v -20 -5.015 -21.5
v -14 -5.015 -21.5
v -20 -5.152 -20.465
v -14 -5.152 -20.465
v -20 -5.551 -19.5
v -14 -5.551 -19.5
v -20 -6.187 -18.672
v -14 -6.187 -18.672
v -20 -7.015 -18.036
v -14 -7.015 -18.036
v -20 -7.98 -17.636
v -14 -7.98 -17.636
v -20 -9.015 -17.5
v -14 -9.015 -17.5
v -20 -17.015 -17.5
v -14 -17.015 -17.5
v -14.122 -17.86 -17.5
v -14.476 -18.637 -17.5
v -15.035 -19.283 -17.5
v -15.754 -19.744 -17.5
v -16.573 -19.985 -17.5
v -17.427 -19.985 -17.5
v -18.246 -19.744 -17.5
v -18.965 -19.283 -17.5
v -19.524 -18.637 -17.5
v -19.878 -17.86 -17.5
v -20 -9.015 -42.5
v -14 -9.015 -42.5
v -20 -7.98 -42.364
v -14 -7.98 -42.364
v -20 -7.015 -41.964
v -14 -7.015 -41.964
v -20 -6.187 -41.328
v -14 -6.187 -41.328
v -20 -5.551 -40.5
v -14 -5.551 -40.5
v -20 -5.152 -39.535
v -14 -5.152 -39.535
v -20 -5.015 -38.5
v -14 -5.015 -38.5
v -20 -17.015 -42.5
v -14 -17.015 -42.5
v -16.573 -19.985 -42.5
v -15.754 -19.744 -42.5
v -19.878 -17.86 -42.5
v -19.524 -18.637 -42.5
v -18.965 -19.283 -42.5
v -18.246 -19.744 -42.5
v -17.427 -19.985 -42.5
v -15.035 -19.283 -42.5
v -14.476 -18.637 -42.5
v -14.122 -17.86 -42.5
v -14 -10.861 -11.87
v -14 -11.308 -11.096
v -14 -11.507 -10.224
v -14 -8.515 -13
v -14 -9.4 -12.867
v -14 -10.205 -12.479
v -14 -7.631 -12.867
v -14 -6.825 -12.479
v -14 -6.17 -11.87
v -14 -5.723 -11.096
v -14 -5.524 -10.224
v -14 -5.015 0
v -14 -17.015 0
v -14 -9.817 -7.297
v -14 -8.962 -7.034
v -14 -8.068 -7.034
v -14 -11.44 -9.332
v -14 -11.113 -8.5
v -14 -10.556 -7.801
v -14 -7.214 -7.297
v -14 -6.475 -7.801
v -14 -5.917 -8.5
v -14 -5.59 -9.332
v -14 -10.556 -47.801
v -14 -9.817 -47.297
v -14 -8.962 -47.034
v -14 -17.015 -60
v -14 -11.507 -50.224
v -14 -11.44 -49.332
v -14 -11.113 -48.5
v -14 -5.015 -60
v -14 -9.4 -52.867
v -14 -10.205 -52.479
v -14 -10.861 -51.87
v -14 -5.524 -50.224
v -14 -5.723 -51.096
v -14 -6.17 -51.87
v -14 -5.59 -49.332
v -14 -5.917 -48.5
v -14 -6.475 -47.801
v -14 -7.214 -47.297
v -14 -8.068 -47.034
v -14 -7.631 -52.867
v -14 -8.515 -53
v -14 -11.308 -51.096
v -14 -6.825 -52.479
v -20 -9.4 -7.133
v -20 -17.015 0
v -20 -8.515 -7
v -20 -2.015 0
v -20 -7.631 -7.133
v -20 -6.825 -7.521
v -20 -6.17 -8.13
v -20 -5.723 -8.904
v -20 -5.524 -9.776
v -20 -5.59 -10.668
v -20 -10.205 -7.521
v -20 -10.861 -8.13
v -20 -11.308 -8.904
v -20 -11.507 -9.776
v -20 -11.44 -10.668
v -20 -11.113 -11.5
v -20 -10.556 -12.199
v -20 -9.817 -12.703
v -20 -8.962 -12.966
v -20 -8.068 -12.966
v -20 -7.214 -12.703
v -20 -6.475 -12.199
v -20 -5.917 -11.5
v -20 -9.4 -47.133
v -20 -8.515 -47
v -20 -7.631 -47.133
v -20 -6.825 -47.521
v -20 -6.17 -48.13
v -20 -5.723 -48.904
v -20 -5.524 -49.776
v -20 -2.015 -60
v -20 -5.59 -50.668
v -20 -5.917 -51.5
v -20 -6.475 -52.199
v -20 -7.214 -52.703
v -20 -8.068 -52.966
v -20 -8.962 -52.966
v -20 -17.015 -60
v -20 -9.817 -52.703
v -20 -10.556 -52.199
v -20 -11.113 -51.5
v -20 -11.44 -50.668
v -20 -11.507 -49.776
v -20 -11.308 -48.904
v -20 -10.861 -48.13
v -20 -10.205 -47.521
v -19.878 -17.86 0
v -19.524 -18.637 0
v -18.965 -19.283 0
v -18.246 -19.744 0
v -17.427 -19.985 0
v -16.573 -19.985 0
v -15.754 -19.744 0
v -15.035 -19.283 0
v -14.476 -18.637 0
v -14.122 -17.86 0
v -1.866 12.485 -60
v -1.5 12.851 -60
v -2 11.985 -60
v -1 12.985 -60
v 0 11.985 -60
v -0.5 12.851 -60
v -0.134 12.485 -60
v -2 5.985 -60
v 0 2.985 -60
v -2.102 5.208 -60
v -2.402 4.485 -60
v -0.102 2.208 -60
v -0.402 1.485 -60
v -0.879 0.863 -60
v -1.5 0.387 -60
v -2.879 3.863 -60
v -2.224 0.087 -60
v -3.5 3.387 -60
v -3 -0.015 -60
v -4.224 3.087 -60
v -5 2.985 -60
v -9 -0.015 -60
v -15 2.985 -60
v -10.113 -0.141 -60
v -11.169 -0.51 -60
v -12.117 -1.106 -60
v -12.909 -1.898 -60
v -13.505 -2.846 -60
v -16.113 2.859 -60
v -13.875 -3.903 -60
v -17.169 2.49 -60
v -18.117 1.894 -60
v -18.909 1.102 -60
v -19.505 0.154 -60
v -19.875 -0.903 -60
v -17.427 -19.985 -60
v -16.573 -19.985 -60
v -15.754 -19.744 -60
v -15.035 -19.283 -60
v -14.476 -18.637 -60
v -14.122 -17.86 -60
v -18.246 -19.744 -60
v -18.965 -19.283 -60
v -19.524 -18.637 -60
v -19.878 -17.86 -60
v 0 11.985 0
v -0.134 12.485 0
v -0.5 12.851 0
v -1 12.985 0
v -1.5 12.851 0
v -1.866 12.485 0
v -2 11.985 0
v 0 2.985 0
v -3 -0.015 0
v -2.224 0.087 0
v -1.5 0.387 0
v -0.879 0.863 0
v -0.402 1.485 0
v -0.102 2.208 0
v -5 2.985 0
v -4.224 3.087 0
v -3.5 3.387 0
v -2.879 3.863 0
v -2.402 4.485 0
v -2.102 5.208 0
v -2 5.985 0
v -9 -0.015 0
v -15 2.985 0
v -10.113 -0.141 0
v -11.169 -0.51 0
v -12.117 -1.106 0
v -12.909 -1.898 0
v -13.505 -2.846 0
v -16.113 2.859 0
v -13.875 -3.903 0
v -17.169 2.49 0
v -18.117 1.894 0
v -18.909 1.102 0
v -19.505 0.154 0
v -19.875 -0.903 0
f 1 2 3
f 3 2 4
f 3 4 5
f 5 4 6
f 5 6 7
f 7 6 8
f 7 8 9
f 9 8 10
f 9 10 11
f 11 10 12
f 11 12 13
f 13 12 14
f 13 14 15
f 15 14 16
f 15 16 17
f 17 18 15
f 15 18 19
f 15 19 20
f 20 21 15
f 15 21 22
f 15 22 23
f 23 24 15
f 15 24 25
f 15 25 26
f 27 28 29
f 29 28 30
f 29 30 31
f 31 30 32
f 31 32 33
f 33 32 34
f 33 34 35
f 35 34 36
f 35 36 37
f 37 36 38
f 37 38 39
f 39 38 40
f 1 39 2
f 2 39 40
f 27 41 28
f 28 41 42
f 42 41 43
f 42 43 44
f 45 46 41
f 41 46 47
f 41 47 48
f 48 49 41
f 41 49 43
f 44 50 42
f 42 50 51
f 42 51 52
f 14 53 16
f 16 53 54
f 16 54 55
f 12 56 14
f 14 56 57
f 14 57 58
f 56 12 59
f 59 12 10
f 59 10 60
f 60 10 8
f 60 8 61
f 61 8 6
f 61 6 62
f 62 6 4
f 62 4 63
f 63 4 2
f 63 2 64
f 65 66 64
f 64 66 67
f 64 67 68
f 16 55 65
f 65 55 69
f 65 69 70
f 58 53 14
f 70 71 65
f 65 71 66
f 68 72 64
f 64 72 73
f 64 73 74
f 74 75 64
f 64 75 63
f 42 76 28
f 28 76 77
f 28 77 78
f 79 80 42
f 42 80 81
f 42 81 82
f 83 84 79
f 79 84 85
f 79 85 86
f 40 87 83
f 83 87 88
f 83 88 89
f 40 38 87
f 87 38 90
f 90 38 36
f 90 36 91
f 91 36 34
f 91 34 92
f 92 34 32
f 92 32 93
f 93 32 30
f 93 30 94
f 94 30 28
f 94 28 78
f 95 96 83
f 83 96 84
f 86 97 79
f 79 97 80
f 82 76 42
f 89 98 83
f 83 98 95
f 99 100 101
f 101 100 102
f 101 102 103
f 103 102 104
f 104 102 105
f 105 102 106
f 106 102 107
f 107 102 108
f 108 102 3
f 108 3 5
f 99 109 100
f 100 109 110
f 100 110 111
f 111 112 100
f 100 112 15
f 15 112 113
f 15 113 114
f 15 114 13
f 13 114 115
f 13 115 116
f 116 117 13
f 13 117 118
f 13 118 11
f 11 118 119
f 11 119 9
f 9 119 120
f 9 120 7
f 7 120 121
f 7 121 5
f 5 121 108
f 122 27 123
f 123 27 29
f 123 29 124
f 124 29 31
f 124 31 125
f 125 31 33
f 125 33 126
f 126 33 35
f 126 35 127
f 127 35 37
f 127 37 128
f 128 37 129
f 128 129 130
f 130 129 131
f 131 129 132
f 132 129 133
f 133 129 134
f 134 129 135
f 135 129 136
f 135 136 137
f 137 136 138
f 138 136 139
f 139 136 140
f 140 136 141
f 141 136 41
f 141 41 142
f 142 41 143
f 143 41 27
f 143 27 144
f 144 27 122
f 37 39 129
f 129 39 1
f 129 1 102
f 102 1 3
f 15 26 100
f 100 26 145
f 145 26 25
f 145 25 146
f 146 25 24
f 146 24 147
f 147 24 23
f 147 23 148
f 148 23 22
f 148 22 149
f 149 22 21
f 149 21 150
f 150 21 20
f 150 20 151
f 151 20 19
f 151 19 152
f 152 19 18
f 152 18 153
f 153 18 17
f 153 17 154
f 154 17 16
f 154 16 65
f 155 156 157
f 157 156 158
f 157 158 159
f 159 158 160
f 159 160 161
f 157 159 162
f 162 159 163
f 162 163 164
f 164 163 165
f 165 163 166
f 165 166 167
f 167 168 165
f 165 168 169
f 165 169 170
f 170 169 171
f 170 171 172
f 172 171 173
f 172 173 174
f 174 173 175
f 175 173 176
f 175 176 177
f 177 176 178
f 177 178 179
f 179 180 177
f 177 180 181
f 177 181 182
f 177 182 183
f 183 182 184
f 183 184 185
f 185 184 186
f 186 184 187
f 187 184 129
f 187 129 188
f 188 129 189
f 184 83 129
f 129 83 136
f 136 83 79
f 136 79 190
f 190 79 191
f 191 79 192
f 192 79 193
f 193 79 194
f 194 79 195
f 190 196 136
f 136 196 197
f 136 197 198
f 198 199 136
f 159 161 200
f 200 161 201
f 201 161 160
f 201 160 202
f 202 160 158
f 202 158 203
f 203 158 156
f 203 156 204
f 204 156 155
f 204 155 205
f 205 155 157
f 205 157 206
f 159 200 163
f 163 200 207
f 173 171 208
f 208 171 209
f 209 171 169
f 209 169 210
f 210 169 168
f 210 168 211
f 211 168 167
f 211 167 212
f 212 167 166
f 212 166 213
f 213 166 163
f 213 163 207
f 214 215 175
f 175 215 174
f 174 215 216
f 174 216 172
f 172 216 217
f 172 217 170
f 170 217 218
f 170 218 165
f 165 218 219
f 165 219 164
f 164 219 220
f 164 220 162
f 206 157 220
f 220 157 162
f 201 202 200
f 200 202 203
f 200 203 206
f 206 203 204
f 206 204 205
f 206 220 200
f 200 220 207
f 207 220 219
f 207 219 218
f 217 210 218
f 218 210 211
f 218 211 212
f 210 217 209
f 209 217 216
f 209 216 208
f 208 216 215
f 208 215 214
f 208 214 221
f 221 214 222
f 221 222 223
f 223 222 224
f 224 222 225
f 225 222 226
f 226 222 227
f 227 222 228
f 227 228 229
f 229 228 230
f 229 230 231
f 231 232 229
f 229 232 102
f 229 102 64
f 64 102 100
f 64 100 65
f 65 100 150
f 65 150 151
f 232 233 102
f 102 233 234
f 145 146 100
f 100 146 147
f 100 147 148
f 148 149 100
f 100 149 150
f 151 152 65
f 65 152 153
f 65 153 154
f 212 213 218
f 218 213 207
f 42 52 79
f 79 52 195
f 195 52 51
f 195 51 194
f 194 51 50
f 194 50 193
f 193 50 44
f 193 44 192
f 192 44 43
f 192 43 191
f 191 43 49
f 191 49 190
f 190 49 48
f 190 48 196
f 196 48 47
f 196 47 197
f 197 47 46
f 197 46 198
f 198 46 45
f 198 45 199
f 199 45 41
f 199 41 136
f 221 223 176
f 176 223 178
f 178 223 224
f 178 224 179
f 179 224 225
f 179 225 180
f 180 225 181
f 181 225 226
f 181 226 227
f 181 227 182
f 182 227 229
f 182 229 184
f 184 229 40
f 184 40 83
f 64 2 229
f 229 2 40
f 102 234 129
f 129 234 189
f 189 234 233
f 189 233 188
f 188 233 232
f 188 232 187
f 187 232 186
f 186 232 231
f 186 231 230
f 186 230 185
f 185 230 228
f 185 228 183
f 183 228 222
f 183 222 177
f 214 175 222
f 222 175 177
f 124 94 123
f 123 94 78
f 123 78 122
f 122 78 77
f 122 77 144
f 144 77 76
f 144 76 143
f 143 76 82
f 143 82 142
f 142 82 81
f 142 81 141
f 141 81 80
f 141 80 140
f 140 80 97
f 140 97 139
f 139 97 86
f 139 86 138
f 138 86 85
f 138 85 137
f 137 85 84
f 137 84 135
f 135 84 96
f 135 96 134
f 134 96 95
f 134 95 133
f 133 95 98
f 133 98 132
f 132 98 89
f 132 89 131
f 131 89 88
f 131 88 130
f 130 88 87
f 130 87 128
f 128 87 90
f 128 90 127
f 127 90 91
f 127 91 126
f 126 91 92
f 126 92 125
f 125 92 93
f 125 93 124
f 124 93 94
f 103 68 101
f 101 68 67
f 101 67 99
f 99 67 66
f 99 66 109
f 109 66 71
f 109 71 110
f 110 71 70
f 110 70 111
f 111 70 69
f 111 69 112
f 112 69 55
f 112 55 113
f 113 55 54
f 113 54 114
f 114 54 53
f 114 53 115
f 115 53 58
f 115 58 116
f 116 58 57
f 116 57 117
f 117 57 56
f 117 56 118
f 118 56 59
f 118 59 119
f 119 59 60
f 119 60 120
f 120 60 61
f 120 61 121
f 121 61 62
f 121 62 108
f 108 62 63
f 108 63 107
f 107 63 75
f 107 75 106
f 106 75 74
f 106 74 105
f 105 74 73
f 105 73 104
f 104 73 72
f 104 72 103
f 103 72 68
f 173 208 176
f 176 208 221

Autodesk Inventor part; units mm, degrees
ref_plane "YZ Plane" through (0, 0, 0) normal (1, 0, 0) x (0, 1, 0)
ref_plane "XZ Plane" through (0, 0, 0) normal (0, 1, 0) x (-1, 0, 0)
ref_plane "XY Plane" through (0, 0, 0) normal (0, 0, 1) x (1, 0, 0)
sketch "Sketch1" plane through (0, 0, 0) normal (0, 1, 0) x (-1, 0, 0)
  line L0 (0, 0) -> (20, 0)
  line L1 (20, 0) -> (20, -60)
  line L2 (20, -60) -> (0, -60)
  line L3 (0, -60) -> (0, 0)
  dimension "d0" = 20
  dimension "d1" = 60
extrude "Extrusion1" add sketch "Sketch1" along normal blind 3
sketch "Sketch2" plane through (0, 3, 0) normal (0, 1, 0) x (1, 0, 0)
  line L0 (-20, 0) -> (0, 0) projected
  line L1 (0, 0) -> (-2, 0)
  line L2 (-2, 0) -> (-2, 60)
  line L3 (-2, 60) -> (0, 60)
  line L4 (0, 60) -> (0, 0)
  dimension "d4" = 2
  dimension "d5" = 60
extrude "Extrusion2" add sketch "Sketch2" along normal blind 10
sketch "Sketch3" plane through (0, 0, 0) normal (0, -1, 0) x (1, 0, 0)
  line L0 (-20, 0) -> (0, 0) projected
  line L1 (0, -60) -> (-20, -60) projected
  line L2 (-20, 0) -> (-14, 0)
  line L3 (-14, 0) -> (-14, -60)
  line L4 (-14, -60) -> (-20, -60)
  line L5 (-20, -60) -> (-20, 0)
  dimension "d8" = 6
extrude "Extrusion3" add sketch "Sketch3" along normal blind 20
sketch "Sketch4" plane through (-14, 0, 0) normal (1, 0, 0) x (0, 0, -1)
  line L0 (0, -20) -> (0, 3) projected
  line L1 (0, -8.5) -> (10, -8.5)
  line L2 (60, 0) -> (60, -20) projected
  circle A0 centre (10, -8.5) radius 3
  line L3 (60, -20) -> (0, -20) projected
  line L4 (0, -20) -> (60, -20)
  circle A1 centre (50, -8.5) radius 3
  point P0 (0, 0)
  dimension "d11" = 10
  dimension "d12" = 6
  dimension "d15" = 40
extrude "Extrusion4" cut sketch "Sketch4" against normal through all
fillet "Fillet1" radius 5 2 edges at (-20, 3, -30) (-14, 0, -30)
fillet "Fillet2" radius 3 2 edges at (-14, -20, -30) (-20, -20, -30)
fillet "Fillet3" radius 3 2 edges at (-2, 3, -30) (0, 0, -30)
fillet "Fillet4" radius 1 2 edges at (0, 13, -30) (-2, 13, -30)
sketch "Sketch5" plane through (-14, -5, 0) normal (1, 0, 0) x (0, 0, -1)
  line L0 (0, 0) -> (60, 0) projected
  line L1 (0, 0) -> (30, 0)
  line L2 (30, 0) -> (30, -7.5)
  line L3 (60, -15) -> (0, -15) projected
  line L4 (42.5, -15) -> (17.5, -15)
  line L5 (17.5, -15) -> (17.5, 0)
  line L6 (17.5, 0) -> (42.5, 0)
  line L7 (42.5, 0) -> (42.5, -15)
  line L8 (42.5, -15) -> (17.5, 0) construction
  line L9 (17.5, -15) -> (42.5, 0) construction
  point P0 (0, 5)
  dimension "d26" = 7.5
  dimension "d27" = 25
  dimension "d28" = 15
extrude "Extrusion5" cut sketch "Sketch5" against normal through all
fillet "Fillet5" radius 4 2 edges at (-17, -5, -42.5) (-17, -5, -17.5)
properties part number "CableChain_Holder"
